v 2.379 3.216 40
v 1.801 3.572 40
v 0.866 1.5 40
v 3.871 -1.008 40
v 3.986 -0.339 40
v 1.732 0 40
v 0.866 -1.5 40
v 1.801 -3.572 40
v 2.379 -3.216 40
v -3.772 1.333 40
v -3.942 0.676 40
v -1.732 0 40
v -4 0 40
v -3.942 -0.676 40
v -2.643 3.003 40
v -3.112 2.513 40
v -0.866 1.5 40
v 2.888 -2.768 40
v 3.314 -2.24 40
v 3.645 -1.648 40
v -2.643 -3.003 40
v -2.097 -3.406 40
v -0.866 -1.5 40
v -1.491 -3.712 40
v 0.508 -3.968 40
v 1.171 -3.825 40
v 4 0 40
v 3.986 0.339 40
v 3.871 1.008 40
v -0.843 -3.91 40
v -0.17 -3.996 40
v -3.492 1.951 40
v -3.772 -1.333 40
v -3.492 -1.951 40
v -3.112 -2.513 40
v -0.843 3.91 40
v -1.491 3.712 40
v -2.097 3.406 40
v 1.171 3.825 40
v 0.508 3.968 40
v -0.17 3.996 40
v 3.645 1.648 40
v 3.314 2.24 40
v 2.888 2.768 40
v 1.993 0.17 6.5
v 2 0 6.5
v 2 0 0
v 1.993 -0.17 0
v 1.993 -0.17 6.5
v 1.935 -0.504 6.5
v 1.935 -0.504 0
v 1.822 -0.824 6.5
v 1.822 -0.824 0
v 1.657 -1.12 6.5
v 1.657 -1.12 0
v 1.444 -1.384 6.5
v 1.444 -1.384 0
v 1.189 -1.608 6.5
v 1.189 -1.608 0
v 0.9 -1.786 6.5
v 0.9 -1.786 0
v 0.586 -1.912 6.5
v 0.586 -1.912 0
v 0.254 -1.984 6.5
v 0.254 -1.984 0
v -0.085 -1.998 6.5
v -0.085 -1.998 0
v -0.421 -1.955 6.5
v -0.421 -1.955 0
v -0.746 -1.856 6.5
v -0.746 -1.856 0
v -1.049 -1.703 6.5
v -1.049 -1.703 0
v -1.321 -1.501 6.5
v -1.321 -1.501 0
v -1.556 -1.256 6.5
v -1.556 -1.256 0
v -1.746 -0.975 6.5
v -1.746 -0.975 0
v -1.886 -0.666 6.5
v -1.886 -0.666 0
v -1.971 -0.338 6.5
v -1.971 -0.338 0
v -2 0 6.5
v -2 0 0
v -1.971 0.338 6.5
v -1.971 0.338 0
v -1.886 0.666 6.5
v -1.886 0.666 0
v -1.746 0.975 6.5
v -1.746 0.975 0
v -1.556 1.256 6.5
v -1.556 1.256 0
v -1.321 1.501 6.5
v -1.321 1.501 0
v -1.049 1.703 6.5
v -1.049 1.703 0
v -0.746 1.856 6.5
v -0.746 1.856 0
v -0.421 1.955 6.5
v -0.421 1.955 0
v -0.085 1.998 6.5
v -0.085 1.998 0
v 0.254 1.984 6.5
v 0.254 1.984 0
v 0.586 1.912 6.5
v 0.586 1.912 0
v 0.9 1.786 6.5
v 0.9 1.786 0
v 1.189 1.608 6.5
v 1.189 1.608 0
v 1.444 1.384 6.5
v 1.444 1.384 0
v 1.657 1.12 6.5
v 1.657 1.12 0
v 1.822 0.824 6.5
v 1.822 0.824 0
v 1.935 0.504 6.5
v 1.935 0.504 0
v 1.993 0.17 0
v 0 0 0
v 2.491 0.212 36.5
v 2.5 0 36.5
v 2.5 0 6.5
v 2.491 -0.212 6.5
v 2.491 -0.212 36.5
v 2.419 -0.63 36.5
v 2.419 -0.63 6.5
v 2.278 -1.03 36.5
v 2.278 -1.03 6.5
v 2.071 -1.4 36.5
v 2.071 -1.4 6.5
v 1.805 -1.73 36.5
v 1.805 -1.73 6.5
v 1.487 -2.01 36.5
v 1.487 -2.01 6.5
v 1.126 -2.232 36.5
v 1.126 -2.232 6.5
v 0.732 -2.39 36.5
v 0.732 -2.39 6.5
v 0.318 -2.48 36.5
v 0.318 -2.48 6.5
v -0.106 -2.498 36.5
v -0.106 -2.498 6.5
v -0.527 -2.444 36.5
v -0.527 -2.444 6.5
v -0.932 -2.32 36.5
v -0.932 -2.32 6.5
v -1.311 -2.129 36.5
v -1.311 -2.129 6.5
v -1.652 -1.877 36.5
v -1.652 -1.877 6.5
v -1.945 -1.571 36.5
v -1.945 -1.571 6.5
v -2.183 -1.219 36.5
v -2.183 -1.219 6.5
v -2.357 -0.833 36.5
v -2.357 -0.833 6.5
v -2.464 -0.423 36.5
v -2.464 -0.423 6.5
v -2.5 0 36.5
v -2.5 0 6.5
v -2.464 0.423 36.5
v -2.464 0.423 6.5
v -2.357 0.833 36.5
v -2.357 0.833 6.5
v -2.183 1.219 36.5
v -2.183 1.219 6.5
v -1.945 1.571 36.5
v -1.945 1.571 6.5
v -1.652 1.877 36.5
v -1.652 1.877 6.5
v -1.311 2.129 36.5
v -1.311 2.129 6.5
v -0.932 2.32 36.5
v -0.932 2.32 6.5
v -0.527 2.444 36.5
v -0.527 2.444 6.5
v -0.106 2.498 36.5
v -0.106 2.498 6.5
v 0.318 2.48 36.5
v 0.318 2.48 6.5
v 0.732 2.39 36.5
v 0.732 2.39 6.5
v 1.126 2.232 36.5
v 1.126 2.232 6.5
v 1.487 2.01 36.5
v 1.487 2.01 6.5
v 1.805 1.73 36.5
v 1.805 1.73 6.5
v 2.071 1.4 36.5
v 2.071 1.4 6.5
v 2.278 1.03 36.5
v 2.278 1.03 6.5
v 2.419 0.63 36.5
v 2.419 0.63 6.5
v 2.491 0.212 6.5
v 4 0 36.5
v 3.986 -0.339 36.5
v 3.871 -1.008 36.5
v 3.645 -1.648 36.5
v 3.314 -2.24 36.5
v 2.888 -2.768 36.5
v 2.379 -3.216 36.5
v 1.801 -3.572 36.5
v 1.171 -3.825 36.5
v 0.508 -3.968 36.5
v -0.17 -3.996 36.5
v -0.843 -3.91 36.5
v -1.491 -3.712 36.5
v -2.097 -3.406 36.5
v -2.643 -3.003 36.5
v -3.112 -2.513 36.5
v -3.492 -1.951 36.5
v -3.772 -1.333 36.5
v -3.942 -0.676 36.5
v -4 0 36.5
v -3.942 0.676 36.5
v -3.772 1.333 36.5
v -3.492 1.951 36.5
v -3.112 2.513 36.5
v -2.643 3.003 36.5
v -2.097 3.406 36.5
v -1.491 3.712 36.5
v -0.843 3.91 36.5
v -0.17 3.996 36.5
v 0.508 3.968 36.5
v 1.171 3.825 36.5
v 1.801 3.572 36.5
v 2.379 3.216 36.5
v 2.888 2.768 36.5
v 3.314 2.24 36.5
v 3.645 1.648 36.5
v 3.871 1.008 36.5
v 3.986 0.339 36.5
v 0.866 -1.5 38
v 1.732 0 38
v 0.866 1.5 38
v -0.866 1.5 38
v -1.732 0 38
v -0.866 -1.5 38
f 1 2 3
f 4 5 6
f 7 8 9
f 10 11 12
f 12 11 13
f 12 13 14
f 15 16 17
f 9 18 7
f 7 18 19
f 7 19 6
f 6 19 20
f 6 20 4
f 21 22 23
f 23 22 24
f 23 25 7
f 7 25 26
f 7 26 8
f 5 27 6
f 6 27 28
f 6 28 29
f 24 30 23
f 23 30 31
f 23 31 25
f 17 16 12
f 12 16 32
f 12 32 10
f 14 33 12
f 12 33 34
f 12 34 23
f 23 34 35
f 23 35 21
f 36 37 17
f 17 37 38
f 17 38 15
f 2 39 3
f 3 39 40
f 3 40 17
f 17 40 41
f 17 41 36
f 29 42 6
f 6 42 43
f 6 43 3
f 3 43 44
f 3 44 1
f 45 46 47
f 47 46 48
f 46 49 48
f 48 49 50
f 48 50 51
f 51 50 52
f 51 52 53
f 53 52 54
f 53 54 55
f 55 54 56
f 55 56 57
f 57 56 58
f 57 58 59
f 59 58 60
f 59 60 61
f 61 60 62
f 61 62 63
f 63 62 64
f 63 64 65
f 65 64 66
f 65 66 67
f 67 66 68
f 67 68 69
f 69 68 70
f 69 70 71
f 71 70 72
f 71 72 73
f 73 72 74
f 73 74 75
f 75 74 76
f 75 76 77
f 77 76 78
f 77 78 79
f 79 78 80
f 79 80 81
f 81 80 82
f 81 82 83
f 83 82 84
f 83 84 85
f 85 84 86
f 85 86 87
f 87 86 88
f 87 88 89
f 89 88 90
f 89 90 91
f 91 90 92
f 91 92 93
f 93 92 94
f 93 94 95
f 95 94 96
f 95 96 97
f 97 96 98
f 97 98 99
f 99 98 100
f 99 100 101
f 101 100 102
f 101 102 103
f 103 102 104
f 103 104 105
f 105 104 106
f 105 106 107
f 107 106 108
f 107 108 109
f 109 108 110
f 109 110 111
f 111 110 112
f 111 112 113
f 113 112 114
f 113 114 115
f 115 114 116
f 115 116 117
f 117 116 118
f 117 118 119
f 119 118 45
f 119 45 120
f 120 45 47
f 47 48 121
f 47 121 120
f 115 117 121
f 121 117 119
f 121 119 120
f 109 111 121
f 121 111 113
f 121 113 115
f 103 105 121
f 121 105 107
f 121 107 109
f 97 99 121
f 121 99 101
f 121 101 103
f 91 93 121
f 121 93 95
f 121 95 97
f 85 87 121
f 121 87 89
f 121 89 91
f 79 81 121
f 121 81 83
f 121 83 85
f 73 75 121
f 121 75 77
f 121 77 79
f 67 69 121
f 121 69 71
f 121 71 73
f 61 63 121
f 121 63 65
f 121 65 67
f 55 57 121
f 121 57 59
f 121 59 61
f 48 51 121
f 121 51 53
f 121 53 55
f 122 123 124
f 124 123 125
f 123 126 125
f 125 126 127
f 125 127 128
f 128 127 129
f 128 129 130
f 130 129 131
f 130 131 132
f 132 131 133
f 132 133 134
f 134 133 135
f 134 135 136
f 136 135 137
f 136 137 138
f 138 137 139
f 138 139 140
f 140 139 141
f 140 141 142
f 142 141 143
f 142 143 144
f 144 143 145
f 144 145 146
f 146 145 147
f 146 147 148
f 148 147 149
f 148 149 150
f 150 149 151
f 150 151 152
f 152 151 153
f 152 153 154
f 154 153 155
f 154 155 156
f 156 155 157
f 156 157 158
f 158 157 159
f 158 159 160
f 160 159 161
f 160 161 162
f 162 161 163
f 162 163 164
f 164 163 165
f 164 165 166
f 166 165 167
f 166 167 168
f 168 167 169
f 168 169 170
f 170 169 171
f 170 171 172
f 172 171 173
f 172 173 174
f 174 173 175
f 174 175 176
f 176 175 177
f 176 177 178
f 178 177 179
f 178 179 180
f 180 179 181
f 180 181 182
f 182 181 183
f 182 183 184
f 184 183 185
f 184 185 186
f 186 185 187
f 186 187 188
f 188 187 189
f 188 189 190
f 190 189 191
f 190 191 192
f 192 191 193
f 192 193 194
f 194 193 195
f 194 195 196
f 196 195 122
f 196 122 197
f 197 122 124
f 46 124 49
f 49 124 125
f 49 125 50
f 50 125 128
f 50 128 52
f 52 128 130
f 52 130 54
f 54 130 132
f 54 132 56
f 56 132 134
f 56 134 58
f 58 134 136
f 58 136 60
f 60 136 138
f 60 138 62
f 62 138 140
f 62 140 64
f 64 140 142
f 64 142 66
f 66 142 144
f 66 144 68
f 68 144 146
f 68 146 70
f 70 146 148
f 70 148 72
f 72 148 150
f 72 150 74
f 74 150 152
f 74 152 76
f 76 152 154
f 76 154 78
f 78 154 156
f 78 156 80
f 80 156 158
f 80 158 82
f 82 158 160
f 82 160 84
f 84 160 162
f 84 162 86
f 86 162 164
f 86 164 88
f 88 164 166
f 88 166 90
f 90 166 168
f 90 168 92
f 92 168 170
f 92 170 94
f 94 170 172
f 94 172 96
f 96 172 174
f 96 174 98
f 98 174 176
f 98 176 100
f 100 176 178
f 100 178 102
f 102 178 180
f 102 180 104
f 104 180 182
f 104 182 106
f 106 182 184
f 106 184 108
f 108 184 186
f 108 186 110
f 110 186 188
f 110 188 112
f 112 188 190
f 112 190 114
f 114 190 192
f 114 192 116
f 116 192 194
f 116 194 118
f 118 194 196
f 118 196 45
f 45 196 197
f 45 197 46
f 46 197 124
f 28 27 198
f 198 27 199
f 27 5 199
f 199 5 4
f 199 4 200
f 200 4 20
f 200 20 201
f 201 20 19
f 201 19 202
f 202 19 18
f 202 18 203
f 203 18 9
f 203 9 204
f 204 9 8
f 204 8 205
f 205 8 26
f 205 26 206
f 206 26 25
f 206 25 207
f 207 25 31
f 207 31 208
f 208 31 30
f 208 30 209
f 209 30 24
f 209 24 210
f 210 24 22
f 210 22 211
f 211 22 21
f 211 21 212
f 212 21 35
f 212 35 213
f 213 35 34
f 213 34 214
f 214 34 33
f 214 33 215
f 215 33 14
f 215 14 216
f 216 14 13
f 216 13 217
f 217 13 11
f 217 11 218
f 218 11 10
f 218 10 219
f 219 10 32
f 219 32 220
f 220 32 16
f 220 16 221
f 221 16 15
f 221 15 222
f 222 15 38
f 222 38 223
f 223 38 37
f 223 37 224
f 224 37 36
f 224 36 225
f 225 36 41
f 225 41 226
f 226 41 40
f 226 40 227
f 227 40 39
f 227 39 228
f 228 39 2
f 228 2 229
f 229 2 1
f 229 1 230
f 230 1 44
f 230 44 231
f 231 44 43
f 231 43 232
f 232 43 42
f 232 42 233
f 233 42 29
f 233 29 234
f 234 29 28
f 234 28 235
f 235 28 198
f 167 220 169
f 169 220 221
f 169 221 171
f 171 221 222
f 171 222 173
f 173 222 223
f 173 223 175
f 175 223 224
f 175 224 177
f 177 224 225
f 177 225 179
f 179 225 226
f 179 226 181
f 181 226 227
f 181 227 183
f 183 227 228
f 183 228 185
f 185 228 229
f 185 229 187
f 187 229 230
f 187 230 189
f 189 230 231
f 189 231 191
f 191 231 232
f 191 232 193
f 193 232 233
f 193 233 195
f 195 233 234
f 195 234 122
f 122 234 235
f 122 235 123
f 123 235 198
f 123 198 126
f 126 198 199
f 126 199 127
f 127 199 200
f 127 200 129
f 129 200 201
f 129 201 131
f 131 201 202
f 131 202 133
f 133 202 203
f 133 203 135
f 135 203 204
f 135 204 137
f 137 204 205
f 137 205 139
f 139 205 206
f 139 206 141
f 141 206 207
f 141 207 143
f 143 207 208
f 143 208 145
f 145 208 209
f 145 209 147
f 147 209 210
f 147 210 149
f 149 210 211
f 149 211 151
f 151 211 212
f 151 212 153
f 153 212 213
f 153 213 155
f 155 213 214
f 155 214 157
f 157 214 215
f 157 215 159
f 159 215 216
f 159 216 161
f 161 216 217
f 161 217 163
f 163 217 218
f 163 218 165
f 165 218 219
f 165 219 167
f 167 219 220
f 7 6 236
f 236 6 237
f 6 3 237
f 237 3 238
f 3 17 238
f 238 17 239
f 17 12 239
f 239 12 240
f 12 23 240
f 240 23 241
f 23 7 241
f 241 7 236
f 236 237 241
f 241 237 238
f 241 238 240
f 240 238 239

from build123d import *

# Parameters (mm, degrees)
SKETCH1_R      = 2
THREAD_DEPTH   = 6.5
SKETCH2_R      = 2.5
SHOULDER_DEPTH = 30
SKETCH3_R      = 4
HEAD_DEPTH     = 3.5
SOCKET_DEPTH   = 2


with BuildPart() as part:
    # Sketch1 → Thread (new body)
    with BuildSketch(Plane.XY):
        Circle(SKETCH1_R)
    extrude(amount=THREAD_DEPTH)

    # Sketch2 → Shoulder (add)
    with BuildSketch(Plane.XY.offset(6.5)):
        Circle(SKETCH2_R)
    extrude(amount=SHOULDER_DEPTH)

    # Sketch3 → Head (add)
    with BuildSketch(Plane.XY.offset(36.5)):
        Circle(SKETCH3_R)
    extrude(amount=HEAD_DEPTH)

    # Sketch4 → Socket (cut)
    with BuildSketch(Plane.XY.offset(38)):
        Polygon((1.732050808, 0), (0.866025404, 1.5), (-0.866025404, 1.5), (-1.732050808, 0), (-0.866025404, -1.5), (0.866025404, -1.5), align=None)
    extrude(amount=SOCKET_DEPTH, mode=Mode.SUBTRACT)


solid = part.part
